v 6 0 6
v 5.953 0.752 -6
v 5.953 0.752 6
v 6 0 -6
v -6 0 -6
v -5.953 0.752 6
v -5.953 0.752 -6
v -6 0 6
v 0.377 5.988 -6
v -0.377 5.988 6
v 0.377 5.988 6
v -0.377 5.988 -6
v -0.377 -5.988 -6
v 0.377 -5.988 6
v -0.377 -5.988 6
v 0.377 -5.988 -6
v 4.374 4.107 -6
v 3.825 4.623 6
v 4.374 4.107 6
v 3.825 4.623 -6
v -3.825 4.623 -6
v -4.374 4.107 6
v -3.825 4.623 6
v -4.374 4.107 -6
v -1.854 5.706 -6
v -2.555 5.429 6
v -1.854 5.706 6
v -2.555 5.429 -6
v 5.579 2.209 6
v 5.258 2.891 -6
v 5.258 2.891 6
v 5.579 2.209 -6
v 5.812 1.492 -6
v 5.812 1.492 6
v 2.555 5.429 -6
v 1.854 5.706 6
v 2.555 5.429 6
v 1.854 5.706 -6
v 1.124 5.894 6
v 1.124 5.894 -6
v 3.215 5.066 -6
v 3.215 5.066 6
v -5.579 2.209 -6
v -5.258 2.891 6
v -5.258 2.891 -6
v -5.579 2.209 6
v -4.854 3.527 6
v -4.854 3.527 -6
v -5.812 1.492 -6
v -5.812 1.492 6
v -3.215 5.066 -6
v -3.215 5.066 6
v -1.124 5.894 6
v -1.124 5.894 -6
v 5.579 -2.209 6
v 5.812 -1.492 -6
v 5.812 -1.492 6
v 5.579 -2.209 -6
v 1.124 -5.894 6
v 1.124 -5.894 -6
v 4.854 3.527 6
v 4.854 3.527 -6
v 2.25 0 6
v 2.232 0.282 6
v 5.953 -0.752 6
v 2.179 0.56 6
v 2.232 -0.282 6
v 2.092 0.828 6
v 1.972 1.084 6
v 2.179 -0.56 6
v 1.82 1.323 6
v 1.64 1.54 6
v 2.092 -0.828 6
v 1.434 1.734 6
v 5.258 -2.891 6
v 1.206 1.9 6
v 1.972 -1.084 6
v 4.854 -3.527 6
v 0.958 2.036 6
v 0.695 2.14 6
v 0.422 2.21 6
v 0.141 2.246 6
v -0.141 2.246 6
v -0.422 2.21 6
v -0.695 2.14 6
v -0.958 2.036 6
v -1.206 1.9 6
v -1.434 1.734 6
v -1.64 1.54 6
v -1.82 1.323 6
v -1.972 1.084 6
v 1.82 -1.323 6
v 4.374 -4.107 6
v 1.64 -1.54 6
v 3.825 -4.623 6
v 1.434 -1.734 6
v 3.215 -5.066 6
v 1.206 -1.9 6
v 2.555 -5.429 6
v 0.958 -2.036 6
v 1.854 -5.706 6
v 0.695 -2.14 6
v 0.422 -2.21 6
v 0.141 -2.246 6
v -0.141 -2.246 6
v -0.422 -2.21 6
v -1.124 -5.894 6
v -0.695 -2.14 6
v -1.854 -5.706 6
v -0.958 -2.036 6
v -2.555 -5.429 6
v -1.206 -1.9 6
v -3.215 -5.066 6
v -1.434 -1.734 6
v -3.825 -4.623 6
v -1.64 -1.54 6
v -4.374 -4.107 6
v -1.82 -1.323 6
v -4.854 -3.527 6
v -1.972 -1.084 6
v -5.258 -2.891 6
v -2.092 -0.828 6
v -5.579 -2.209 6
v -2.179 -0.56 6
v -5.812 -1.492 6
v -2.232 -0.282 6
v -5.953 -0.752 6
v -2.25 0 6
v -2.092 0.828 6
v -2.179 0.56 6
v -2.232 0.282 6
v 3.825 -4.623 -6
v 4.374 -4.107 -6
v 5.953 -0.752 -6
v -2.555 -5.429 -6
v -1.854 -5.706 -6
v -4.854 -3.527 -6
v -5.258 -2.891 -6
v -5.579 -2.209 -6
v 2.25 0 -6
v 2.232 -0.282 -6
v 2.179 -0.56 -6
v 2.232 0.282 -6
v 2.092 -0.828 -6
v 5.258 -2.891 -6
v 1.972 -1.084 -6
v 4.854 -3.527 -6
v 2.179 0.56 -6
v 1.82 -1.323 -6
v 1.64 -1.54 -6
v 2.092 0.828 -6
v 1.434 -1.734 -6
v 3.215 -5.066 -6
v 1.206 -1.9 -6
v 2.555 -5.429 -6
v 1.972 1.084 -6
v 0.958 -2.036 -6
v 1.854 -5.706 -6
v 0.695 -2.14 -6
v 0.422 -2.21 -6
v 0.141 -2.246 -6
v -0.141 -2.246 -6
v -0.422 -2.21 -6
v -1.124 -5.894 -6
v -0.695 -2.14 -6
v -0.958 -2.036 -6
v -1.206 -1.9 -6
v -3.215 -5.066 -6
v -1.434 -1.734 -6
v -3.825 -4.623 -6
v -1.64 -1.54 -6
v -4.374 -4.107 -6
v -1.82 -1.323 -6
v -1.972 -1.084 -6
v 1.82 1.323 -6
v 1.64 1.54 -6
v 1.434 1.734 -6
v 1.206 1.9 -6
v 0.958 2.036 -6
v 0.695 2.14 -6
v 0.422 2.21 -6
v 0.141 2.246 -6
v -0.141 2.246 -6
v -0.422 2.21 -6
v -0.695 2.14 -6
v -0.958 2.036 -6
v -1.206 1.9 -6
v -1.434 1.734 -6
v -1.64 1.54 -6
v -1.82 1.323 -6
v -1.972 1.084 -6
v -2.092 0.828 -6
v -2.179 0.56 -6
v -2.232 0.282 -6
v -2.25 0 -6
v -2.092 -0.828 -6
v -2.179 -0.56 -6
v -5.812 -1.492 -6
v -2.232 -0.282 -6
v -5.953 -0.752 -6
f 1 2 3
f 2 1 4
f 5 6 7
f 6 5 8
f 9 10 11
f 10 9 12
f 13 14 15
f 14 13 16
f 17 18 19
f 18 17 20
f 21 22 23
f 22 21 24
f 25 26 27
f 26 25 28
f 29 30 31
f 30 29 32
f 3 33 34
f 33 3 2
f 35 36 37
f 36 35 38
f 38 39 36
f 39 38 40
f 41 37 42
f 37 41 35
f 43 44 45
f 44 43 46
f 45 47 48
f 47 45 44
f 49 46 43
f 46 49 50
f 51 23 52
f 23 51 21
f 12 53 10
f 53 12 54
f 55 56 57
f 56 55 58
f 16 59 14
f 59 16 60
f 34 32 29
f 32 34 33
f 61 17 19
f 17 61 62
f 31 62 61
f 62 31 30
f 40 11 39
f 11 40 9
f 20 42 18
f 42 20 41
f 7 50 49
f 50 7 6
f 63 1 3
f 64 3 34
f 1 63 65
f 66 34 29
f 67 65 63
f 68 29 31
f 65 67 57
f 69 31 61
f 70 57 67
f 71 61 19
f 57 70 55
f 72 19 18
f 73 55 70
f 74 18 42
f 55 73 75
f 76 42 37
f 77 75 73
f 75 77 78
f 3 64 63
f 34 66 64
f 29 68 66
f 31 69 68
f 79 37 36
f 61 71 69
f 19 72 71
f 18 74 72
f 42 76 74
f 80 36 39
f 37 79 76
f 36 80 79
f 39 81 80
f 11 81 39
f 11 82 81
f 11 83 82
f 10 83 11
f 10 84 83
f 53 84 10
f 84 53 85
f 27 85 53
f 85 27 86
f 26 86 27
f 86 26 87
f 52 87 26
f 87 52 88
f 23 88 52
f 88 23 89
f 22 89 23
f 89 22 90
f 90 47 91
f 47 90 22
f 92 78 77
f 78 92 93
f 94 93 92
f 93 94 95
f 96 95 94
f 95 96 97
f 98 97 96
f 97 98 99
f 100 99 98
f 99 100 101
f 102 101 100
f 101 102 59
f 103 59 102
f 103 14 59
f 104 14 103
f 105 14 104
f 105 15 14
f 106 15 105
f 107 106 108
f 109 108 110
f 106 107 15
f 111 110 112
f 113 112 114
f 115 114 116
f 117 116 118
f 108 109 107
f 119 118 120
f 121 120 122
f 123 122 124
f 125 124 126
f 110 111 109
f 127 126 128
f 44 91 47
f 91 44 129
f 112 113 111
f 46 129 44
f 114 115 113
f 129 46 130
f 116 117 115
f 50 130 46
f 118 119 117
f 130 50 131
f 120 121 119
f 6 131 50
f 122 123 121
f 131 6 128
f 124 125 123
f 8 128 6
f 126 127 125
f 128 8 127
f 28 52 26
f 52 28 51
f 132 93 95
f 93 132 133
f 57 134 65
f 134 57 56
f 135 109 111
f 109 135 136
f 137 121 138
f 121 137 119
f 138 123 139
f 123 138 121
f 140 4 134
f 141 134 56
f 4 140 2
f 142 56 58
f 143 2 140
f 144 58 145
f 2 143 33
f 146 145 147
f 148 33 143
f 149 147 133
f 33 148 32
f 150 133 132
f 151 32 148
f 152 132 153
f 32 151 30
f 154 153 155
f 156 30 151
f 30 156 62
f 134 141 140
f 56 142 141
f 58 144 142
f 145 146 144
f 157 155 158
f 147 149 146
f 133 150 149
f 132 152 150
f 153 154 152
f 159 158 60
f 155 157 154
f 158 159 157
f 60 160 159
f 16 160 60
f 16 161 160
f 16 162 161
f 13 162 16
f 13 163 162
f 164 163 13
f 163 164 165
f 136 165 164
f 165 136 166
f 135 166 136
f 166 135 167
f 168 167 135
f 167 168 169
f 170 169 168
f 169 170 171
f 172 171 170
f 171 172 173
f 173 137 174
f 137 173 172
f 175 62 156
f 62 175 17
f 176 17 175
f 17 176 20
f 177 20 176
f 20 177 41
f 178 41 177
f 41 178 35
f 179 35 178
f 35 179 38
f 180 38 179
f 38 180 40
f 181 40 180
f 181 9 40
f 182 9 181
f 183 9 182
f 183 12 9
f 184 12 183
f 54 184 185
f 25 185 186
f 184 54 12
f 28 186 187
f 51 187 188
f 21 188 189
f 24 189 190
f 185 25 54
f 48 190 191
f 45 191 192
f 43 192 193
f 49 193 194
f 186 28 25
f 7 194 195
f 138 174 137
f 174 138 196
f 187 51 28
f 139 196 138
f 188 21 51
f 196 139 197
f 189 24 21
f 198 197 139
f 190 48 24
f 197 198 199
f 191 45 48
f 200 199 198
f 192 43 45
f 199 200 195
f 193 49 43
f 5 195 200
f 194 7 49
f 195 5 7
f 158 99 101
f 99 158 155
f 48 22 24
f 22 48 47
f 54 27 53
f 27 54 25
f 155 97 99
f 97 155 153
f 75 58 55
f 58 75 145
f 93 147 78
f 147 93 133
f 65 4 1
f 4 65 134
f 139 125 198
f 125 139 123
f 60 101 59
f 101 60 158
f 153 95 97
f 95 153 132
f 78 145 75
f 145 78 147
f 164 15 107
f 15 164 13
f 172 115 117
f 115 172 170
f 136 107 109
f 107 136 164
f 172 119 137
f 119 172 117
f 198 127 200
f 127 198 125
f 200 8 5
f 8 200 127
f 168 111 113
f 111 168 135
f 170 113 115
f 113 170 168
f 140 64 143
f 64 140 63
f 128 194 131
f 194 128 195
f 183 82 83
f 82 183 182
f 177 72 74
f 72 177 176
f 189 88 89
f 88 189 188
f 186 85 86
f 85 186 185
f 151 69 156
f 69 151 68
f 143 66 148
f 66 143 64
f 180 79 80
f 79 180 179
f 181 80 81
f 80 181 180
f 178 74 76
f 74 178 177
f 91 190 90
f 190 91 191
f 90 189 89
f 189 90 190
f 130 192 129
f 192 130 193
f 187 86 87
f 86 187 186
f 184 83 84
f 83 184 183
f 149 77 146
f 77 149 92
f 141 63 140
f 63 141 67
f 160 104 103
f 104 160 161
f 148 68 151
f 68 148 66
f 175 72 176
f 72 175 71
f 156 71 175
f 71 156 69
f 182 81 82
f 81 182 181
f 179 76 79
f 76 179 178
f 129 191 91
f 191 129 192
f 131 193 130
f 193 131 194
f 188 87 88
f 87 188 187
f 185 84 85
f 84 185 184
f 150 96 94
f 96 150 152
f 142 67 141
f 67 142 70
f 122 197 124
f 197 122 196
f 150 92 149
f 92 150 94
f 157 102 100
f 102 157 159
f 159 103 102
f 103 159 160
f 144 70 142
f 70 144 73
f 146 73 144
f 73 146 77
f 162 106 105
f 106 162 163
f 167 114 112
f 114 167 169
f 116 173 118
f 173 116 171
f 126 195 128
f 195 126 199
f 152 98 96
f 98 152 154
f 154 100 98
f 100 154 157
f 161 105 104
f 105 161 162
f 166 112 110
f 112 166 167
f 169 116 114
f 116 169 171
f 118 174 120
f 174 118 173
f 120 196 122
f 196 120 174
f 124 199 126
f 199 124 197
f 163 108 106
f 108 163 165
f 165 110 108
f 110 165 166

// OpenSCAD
$fn = 50;


difference() {
	union() {
		translate(v = [0, 0, -6.0000000000]) {
			cylinder(h = 12, r = 6.0000000000);
		}
	}
	union() {
		translate(v = [0, 0, -100.0000000000]) {
			cylinder(h = 200, r = 2.2500000000);
		}
	}
}
